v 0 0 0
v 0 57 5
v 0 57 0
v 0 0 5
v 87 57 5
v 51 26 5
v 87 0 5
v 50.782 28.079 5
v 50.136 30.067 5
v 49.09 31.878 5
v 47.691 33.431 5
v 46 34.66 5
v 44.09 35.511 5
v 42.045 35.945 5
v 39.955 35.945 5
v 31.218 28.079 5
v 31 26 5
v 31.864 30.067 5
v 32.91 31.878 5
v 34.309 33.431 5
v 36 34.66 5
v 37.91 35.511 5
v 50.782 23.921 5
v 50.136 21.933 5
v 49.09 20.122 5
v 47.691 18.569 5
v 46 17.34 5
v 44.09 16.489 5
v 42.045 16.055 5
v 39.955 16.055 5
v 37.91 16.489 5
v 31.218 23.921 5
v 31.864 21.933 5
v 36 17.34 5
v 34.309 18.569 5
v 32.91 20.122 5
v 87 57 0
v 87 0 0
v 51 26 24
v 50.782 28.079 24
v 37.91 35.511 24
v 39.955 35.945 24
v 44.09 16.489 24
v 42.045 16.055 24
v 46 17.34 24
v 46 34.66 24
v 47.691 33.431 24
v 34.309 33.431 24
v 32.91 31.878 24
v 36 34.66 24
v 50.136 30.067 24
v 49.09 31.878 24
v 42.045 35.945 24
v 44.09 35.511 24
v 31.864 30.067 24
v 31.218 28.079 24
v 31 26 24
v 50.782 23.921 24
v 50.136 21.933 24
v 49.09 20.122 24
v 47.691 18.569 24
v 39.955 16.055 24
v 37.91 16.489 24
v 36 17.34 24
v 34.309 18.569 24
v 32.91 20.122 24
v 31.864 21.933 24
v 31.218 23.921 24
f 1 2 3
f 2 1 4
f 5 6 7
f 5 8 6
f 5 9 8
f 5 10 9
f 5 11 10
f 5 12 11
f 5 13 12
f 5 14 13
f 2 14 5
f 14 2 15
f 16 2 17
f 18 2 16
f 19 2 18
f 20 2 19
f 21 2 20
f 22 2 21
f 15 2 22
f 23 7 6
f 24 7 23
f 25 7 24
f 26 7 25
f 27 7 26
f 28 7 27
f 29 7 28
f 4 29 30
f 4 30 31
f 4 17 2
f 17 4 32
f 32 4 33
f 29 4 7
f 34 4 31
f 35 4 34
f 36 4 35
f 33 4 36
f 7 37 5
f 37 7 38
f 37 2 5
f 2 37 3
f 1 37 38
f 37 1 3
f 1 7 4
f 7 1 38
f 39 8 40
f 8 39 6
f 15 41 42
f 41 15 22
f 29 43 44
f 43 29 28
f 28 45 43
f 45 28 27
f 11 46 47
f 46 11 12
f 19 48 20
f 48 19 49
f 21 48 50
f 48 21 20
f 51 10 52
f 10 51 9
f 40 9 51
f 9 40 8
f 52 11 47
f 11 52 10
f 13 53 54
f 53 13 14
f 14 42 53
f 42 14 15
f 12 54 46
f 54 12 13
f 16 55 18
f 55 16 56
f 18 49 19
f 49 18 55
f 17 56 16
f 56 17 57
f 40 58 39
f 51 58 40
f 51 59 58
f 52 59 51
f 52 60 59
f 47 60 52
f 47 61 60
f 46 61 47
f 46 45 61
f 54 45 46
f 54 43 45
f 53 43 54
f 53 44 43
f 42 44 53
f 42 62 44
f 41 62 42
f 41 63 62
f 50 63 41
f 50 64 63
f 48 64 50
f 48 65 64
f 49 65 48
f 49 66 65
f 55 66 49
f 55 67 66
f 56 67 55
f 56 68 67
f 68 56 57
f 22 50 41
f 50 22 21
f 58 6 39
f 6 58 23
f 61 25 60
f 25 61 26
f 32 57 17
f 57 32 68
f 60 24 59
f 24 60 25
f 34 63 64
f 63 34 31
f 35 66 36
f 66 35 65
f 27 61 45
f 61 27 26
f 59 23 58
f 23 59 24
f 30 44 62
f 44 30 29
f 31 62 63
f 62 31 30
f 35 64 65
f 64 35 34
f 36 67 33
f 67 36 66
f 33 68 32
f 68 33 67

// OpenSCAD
/////////////////////////////////////////////////////////////////////////////////
// Lid for the housing box for UppSense first tries.
//
// Author:              Maximilian Stiefel
// Last modification:   27.04.3017
/////////////////////////////////////////////////////////////////////////////////

/////////////////////////////////////////////////////////////////////////////////
// Vars
/////////////////////////////////////////////////////////////////////////////////
allowance = 1; 
thickness = 5;
length = 80 +  2*allowance;
width = 50 + 2*allowance;
lid_depth = 5;
my_color = "DarkRed";
knob_r = 10;
knob_h = 20;

color(my_color, 0.8) union(){
	cube([length + thickness, width + thickness, lid_depth]);
	translate([length/2, width/2, lid_depth-1]) cylinder(r=knob_r,h=knob_h);
}
